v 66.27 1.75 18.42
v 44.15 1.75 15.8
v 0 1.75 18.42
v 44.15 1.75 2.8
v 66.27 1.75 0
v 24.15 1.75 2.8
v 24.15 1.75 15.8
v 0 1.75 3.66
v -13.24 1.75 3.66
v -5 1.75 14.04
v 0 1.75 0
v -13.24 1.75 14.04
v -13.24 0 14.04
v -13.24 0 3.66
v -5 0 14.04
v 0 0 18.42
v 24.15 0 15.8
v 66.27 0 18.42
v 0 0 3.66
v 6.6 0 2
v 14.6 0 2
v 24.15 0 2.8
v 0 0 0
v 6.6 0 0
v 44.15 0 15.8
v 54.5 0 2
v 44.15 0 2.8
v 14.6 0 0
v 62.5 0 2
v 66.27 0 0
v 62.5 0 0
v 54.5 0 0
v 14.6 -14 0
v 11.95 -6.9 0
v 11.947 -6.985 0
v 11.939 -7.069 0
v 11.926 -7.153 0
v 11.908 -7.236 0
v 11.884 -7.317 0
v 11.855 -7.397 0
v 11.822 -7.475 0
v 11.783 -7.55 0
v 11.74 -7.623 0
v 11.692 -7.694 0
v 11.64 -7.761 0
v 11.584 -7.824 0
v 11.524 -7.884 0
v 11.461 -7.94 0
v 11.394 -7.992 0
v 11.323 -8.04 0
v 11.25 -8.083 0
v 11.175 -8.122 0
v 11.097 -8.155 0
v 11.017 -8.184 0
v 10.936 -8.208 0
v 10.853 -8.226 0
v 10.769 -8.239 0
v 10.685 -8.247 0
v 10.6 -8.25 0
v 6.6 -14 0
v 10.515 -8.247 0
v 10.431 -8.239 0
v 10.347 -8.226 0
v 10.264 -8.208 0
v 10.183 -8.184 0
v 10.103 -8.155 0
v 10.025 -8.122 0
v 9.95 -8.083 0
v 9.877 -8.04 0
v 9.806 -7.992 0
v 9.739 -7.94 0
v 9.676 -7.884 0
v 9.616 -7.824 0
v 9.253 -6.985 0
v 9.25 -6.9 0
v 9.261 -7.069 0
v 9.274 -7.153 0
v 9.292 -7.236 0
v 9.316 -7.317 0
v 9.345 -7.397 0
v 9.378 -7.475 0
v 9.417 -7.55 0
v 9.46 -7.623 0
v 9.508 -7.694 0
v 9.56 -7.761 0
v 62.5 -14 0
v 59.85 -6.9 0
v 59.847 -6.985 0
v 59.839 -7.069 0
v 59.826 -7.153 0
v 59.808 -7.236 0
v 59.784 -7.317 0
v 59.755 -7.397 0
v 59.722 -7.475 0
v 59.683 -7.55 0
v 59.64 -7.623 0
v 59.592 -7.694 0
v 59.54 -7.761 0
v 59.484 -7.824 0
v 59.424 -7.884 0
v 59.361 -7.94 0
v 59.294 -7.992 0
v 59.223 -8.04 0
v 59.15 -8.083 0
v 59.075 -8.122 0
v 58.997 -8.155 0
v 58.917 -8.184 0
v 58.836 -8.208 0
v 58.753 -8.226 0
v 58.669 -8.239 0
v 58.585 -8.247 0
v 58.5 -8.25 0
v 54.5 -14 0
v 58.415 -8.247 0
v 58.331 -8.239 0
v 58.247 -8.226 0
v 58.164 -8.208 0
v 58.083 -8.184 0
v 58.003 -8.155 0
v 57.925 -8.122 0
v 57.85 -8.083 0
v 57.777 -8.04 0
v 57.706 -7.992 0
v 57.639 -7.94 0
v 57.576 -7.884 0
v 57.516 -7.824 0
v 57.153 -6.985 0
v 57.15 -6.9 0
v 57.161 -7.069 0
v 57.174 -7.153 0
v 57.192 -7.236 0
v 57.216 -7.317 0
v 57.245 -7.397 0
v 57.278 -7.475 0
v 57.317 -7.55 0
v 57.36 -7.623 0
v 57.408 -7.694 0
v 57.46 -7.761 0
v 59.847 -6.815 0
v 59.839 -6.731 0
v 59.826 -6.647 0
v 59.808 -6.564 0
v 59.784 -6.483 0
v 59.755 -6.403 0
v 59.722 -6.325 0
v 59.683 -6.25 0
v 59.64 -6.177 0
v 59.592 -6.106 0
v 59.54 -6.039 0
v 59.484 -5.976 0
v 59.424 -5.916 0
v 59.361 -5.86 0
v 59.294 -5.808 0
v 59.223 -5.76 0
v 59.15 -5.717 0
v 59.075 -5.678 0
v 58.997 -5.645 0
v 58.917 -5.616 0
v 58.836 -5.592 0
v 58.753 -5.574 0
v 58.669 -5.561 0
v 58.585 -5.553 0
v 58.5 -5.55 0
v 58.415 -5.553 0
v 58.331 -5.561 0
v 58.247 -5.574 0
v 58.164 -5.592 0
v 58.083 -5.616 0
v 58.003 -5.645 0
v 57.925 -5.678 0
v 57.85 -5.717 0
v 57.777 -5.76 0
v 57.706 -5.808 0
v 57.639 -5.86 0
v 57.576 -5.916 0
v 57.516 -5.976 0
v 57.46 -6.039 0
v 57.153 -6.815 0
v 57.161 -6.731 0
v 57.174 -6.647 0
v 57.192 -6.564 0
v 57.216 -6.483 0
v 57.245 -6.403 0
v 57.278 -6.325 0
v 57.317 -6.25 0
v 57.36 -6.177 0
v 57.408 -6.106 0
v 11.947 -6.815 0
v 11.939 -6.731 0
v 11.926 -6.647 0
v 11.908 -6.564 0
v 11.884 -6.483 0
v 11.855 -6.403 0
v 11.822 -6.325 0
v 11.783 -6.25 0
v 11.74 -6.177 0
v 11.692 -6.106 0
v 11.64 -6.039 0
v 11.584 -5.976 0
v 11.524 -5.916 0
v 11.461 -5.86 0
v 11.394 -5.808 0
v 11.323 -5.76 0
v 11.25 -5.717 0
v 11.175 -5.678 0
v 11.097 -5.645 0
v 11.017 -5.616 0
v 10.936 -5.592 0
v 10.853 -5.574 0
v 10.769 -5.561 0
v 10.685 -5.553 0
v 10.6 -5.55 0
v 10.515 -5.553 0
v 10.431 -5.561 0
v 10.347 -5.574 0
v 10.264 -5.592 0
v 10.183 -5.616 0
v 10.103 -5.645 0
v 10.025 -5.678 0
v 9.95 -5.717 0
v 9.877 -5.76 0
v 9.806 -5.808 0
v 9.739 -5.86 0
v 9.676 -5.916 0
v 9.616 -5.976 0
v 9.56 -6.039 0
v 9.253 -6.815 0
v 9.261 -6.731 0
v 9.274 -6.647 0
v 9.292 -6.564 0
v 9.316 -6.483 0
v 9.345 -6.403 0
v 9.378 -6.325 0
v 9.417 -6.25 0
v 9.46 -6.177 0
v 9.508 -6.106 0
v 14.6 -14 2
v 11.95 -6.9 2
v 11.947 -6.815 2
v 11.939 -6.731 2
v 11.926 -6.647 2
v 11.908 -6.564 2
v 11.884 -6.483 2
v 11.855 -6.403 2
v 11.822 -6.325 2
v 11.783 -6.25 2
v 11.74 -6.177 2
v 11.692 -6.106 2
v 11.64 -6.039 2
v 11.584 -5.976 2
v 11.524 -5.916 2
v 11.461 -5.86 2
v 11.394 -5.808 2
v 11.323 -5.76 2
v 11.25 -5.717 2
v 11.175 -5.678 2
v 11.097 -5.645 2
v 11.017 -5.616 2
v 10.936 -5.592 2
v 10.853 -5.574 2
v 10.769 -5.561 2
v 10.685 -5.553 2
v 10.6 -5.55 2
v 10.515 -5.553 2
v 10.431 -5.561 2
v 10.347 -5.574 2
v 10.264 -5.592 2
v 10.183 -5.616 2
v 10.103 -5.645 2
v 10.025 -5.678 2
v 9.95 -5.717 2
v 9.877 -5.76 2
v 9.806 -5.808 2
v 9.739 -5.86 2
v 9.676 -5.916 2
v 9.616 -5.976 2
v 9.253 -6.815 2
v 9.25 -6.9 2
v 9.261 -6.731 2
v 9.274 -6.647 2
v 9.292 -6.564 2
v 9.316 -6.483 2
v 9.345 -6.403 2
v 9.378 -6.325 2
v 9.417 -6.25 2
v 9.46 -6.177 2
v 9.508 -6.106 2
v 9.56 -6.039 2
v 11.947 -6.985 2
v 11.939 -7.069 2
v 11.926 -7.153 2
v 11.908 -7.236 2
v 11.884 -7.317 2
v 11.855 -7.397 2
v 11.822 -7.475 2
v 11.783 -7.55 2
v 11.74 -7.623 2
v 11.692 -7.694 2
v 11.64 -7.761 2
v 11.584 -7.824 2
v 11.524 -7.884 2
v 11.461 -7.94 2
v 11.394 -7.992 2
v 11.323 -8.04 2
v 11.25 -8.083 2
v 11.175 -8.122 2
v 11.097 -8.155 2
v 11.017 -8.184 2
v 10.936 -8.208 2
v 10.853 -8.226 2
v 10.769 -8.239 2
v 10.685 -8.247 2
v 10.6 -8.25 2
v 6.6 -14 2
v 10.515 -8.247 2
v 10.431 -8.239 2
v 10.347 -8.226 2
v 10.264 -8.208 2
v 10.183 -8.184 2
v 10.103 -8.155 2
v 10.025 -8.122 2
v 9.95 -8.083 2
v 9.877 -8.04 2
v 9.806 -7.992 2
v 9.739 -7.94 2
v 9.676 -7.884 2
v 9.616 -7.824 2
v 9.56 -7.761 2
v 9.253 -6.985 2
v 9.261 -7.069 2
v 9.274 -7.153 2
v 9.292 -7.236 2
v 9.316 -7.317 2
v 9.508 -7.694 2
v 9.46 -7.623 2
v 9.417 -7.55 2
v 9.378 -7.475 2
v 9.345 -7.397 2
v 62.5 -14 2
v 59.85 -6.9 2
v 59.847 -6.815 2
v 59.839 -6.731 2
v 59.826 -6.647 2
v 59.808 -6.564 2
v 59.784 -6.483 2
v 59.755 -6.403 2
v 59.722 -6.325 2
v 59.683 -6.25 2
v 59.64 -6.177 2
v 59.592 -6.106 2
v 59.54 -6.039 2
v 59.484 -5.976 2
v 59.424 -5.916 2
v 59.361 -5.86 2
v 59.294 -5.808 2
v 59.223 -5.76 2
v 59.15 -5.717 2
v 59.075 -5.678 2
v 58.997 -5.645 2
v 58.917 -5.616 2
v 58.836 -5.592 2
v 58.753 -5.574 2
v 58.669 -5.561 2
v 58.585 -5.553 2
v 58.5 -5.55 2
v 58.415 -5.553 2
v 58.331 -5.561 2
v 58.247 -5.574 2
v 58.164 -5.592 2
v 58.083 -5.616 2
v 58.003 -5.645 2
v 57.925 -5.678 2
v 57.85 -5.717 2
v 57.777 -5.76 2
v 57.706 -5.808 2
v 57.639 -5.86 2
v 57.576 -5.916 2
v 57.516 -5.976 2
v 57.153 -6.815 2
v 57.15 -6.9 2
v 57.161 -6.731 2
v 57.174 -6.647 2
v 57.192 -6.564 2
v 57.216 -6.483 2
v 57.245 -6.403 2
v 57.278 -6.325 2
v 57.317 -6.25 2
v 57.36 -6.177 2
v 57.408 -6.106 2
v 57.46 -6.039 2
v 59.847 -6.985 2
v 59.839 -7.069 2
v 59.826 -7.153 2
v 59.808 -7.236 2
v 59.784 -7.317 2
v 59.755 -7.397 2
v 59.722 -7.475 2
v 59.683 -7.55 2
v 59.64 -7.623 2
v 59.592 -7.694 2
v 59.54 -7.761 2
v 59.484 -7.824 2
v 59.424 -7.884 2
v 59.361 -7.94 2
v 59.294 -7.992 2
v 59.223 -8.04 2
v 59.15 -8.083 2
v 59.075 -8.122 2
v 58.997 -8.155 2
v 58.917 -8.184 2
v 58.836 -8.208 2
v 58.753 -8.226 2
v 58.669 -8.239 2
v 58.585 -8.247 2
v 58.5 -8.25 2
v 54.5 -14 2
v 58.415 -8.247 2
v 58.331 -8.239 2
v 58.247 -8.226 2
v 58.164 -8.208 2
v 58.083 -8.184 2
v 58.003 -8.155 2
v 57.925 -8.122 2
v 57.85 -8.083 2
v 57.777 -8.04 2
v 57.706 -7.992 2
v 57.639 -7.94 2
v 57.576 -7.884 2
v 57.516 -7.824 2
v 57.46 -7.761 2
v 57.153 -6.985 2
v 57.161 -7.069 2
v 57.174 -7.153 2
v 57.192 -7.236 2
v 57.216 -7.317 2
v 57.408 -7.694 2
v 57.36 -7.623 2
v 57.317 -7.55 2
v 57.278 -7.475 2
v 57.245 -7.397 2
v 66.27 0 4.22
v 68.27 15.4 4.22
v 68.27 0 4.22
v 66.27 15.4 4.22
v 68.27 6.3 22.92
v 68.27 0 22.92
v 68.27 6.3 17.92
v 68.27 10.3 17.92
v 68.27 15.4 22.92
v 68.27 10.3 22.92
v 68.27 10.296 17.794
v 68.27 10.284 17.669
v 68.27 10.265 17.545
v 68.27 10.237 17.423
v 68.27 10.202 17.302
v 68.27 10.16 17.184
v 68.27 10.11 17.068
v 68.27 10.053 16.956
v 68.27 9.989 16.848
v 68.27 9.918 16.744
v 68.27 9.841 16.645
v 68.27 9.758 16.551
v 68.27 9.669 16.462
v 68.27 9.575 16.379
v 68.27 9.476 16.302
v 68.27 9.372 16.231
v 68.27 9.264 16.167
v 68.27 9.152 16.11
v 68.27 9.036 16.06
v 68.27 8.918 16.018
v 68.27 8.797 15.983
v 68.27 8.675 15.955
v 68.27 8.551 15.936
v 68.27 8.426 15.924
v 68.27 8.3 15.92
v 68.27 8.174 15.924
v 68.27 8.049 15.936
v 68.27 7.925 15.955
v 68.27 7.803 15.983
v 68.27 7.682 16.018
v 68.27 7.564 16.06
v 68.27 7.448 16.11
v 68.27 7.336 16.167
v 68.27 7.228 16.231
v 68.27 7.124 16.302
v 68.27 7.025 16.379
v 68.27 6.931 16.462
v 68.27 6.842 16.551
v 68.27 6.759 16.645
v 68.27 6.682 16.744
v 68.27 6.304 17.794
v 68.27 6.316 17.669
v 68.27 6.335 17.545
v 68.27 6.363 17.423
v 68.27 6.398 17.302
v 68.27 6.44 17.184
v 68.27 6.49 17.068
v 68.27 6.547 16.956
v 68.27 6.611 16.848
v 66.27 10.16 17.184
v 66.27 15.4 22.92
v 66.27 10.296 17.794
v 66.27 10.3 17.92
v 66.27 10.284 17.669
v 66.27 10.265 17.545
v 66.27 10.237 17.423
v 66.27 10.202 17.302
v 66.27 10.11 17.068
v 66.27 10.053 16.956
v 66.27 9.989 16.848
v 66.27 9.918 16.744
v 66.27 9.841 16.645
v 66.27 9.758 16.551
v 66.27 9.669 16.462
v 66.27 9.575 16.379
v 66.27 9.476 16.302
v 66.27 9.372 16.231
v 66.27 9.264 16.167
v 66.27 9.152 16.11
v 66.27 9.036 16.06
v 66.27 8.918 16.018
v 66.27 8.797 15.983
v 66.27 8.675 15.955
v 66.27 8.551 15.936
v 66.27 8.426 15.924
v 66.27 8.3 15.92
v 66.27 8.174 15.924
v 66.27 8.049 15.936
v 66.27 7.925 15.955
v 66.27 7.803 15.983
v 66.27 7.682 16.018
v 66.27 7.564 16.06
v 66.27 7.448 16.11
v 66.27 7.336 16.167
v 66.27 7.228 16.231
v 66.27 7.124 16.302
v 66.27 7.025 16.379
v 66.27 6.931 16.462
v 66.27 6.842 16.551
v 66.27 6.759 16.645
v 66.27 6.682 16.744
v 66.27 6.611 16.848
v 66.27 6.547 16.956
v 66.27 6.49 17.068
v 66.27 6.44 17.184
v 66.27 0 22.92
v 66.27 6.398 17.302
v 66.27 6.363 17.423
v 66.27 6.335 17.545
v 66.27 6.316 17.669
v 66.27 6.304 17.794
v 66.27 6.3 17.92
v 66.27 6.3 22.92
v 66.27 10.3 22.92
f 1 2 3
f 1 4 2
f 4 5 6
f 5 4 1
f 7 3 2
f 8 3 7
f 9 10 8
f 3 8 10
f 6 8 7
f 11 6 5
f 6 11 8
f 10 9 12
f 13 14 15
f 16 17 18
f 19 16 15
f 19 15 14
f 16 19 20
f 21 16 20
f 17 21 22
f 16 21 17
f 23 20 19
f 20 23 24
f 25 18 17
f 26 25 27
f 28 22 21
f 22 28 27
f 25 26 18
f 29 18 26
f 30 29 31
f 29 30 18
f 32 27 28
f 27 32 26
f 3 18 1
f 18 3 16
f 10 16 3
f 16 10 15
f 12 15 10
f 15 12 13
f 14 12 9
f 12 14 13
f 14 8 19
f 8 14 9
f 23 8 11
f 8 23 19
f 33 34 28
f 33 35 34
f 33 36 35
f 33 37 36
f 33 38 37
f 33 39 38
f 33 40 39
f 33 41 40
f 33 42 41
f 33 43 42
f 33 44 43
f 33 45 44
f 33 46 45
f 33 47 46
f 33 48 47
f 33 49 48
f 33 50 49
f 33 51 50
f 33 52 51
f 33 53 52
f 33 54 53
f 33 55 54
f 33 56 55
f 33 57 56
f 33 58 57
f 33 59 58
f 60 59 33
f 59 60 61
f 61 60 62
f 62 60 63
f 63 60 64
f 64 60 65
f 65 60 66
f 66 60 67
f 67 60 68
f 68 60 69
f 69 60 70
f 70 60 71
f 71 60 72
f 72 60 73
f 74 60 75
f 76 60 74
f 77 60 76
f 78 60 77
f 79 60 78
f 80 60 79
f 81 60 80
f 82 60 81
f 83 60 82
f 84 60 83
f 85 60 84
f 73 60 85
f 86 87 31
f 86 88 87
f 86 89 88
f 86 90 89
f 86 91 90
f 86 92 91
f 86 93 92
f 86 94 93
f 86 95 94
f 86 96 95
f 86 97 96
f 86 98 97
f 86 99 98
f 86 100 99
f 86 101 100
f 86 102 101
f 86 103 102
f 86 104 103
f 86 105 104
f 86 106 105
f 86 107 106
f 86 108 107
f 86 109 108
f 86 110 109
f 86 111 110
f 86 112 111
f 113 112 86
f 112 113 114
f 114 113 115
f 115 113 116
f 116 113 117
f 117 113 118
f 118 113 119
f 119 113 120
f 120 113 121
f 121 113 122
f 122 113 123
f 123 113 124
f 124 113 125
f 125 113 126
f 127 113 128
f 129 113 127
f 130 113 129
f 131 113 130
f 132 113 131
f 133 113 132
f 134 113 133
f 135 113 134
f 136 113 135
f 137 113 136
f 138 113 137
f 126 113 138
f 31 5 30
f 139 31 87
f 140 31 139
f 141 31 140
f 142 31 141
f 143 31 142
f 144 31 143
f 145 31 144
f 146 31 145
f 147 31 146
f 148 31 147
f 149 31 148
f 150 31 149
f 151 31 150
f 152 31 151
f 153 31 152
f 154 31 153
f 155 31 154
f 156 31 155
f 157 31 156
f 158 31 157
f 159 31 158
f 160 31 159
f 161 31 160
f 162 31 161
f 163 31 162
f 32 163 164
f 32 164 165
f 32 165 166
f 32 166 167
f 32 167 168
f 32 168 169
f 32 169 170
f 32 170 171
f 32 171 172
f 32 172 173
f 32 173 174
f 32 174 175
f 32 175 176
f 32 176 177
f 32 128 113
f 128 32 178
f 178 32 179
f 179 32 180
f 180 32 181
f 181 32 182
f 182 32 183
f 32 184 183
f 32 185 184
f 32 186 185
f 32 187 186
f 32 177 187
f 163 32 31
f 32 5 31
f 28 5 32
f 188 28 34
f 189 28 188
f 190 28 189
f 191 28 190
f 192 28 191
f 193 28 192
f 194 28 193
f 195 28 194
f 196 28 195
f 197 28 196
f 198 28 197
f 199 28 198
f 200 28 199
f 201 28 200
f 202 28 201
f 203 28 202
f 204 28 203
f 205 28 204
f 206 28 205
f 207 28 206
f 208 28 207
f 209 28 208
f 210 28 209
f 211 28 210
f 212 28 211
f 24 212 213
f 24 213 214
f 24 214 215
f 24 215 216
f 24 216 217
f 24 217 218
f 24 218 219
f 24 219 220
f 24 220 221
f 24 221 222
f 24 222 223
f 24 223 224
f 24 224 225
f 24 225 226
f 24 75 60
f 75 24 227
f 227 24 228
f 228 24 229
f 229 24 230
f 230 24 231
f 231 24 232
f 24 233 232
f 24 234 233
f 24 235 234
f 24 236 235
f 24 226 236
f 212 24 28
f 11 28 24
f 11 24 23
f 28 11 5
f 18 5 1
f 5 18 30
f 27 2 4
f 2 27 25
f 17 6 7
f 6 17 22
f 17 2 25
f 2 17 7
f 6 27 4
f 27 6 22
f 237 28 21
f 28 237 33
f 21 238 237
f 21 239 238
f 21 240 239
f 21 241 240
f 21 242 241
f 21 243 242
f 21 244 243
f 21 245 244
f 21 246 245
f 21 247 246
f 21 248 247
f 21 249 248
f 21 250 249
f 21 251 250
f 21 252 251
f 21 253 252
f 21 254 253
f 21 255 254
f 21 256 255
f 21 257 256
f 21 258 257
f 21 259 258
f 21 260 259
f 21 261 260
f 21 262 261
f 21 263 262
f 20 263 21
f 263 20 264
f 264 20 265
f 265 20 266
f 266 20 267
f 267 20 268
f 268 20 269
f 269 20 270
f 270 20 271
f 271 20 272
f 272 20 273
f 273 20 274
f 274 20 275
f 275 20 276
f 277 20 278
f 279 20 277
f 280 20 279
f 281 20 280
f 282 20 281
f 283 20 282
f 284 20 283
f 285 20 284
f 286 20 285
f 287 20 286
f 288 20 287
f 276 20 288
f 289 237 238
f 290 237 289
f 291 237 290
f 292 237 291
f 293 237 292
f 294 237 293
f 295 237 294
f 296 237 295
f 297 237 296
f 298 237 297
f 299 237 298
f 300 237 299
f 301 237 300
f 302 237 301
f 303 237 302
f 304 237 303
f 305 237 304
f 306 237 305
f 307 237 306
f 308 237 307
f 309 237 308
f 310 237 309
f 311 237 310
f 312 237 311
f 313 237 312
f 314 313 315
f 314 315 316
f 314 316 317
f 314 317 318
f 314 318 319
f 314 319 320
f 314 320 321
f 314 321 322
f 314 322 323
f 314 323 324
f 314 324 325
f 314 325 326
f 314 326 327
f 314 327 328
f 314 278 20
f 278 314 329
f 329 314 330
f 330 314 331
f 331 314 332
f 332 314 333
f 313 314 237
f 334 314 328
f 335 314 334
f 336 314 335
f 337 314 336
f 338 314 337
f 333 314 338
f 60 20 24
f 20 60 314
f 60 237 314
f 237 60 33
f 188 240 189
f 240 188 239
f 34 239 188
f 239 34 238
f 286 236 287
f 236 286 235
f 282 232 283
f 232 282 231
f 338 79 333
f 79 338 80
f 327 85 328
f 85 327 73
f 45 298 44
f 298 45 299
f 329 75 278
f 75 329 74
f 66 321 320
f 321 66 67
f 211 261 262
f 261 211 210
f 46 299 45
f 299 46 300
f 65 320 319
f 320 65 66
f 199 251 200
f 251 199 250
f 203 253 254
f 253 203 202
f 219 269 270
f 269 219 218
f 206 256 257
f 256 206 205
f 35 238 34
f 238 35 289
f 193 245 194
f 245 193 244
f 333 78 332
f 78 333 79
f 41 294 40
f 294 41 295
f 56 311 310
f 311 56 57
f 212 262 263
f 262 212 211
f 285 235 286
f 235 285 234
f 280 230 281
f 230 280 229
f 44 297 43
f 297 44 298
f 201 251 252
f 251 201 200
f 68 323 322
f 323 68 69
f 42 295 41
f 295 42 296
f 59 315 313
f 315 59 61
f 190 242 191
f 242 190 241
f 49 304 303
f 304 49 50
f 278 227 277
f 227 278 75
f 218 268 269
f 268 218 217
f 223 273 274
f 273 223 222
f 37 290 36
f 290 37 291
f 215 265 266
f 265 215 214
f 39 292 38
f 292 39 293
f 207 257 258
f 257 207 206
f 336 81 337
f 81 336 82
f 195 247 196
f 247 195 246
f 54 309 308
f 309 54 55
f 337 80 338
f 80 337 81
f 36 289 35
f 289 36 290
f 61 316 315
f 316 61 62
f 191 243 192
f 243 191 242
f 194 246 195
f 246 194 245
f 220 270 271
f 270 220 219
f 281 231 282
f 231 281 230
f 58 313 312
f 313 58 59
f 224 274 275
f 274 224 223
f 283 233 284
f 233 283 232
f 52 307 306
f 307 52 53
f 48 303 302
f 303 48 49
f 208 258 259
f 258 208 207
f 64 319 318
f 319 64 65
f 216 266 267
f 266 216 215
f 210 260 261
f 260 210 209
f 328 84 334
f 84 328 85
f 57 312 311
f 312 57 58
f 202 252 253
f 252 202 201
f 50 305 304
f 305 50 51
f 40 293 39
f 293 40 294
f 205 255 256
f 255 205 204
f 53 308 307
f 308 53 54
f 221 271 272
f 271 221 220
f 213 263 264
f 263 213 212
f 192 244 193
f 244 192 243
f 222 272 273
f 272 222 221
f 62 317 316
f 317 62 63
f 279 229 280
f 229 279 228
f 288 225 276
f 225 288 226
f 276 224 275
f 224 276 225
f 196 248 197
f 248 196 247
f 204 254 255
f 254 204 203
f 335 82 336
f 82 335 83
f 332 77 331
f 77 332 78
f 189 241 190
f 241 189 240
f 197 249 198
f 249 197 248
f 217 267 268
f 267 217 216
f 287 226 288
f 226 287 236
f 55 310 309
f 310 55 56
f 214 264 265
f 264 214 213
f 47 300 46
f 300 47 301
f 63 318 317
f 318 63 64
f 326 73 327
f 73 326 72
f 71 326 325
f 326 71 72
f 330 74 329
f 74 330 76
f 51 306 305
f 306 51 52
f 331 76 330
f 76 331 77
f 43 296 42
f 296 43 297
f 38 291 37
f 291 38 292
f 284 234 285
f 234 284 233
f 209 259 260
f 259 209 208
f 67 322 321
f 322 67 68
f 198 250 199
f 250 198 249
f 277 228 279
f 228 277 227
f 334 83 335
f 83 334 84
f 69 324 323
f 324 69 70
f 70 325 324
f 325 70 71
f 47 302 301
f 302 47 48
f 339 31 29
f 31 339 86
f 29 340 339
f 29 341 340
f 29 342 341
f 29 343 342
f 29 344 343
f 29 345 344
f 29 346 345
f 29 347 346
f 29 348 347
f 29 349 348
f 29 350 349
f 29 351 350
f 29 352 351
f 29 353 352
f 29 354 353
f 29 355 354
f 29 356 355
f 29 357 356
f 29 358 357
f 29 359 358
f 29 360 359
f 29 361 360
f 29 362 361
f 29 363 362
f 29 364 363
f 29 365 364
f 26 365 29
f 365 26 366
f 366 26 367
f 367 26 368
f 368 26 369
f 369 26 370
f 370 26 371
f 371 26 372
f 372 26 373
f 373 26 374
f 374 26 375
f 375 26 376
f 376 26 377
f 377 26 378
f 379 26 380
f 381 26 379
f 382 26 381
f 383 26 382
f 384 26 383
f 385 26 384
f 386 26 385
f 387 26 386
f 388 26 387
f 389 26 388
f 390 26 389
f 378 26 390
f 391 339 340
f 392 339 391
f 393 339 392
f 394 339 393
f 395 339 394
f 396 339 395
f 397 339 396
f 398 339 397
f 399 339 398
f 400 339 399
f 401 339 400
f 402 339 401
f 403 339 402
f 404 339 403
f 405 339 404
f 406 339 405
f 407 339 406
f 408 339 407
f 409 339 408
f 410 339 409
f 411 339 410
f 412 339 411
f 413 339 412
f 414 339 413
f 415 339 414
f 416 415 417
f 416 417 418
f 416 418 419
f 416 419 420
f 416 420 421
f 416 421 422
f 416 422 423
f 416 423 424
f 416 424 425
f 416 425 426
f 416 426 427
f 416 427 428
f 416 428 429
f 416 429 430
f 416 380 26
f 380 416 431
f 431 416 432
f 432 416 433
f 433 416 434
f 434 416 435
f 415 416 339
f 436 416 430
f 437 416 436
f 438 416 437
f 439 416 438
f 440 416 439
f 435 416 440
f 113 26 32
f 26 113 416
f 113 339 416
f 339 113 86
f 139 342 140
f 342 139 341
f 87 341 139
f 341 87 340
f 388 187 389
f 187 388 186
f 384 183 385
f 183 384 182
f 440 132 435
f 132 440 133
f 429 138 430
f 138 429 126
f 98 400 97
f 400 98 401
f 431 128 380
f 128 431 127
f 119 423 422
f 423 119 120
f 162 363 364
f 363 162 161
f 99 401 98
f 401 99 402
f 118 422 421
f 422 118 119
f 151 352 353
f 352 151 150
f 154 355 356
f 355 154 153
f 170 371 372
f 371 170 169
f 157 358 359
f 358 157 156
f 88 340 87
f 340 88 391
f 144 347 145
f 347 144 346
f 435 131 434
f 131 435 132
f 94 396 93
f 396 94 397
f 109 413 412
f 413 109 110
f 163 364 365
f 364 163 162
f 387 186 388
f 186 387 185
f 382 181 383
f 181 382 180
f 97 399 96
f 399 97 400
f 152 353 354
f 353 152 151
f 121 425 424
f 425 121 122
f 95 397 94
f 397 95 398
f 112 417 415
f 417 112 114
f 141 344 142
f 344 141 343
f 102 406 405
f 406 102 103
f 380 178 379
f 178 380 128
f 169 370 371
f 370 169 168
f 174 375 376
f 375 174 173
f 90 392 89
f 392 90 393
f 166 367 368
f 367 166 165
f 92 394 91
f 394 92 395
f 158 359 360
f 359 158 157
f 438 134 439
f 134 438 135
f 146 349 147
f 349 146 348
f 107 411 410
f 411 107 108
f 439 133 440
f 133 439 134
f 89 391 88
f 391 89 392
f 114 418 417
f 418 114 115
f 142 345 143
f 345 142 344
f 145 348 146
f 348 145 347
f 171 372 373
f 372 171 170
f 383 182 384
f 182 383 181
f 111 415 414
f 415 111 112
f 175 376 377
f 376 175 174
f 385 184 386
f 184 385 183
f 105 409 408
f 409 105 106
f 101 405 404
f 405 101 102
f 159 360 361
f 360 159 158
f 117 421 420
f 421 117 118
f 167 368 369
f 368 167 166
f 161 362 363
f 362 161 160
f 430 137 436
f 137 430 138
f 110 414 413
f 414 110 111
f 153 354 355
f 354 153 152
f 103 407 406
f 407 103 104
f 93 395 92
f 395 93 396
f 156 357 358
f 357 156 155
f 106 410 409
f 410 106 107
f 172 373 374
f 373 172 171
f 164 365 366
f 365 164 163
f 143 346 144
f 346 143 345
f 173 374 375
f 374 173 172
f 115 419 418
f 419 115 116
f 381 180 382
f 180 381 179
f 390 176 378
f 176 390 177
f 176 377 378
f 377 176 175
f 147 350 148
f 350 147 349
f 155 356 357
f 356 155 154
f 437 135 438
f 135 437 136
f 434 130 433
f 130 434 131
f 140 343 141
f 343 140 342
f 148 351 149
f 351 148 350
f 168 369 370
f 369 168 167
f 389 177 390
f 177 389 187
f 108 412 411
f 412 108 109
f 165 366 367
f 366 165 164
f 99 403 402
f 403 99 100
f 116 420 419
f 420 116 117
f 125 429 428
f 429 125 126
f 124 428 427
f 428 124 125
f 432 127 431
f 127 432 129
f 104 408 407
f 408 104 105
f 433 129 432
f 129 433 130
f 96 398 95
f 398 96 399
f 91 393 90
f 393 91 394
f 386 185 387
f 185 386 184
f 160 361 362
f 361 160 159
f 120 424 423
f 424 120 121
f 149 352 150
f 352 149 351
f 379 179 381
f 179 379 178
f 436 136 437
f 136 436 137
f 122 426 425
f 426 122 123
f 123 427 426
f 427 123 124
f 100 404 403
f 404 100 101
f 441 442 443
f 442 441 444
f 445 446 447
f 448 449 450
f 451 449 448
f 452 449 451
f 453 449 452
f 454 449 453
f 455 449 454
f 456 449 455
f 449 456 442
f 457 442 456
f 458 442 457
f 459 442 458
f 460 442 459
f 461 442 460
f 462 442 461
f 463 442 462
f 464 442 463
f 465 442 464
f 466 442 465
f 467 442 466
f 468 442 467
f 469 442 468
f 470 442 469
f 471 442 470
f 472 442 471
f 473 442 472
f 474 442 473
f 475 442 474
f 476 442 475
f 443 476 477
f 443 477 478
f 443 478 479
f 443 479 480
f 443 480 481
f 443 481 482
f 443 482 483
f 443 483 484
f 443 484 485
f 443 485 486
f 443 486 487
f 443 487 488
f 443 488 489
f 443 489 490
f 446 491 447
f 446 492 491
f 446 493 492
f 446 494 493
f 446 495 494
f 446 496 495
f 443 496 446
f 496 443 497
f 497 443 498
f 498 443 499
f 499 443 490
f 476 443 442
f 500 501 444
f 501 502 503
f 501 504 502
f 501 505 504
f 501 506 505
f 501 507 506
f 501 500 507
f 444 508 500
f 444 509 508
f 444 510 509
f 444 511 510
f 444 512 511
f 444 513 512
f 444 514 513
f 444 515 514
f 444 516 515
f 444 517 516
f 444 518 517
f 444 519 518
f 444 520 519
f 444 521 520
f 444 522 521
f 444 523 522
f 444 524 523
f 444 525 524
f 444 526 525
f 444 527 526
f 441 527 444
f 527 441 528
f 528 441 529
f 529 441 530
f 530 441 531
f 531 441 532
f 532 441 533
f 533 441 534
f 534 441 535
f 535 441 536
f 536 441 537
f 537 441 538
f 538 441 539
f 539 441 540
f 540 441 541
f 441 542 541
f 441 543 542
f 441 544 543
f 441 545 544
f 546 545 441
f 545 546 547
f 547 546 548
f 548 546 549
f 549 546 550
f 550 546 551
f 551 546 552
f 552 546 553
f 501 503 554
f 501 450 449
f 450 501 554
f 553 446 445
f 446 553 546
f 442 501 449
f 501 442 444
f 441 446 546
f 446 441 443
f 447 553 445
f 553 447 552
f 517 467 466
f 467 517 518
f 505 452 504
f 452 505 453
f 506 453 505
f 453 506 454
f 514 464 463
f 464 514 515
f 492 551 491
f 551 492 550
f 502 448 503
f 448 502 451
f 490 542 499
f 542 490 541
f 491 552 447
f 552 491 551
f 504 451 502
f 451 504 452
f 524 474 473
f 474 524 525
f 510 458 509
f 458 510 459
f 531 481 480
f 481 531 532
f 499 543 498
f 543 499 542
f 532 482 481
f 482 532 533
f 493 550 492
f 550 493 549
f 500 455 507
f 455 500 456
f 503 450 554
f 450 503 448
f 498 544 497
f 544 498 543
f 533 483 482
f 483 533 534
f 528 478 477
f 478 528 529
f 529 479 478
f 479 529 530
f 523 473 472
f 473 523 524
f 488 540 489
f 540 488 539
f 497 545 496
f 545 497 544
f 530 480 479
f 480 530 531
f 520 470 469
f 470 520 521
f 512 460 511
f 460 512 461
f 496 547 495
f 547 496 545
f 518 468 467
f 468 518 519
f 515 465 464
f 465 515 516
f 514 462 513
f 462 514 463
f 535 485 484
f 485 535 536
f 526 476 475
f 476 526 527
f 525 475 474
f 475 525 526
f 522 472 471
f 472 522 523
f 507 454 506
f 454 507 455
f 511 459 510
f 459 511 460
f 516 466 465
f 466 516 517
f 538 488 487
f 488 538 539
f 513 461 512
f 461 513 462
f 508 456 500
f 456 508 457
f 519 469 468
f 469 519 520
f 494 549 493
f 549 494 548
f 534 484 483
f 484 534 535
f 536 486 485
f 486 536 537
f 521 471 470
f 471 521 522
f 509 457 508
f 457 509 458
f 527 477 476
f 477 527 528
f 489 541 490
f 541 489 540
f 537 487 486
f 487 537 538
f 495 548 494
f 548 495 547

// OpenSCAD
// position of first screw, in respect to card base
A =  10.6;

// distance between the 2 screw centers
B = 47.9;

// distance of the screw from pci bracket
C = 6.9;

// M3 hole diameter
M3= 2.7;

/* [Hidden] */
h_pci_cutout = 66.27;

module plate() {
thick = 1.75;
plug_bottom  =-13.24;
board_bottom =  0.0;
w_pci_cutout = 18.42;
w_connector  = 10.38;
w_margin     =  3.16 + 0.5;
points = [  [plug_bottom, w_margin], 
            [board_bottom, w_margin],
            [board_bottom, 0], 
            [h_pci_cutout, 0],
            [h_pci_cutout, w_pci_cutout],
            [board_bottom, w_pci_cutout],
            [-5, w_margin + w_connector], 
            [ plug_bottom, w_margin + w_connector] ];

difference() {
    translate([ 0, 0, -thick])
    linear_extrude(height = thick) {
        polygon( points);
    }
    // first and third row of holes
    /*
    for (b = [4.5:10:14.5]) {
        for (a = [0,7,14,42,49,56]) {
            translate([6 + a, b, -30])
            cylinder(60, d=5, $fn=6);
        }
    }
    for (a =[0,7,42,49]) {
        translate([9.5 + a,9.5,-30])
        cylinder(60, d=5, $fn=6);
    }
    */

  // RJ45 cutout
  translate([A+10.5+6.1/2, 2.8, -4])
  cube([19+1, 12.5+0.5, 8]);
}

}

// fix plate


module fix() {
    half   =  4;
    length = 14;
    thick  =  2;
    difference() {
        translate([ -half, -length, 0]) cube( size=[ 2*half, length, thick] );
        translate([ 0, -C, 0]) 
        cylinder (h = 10, r=M3/2, center = true, $fn=100);
    }
}




module pci() {
    M4 = 4.0;

    width  = 12.40 + 3;
    length = 18.70;
    thick  =  2;
    shift  = 4.22;
    translate([ -( length + shift), 0, 0])
    difference() {
        cube( size=[ length, width, thick] );

        translate([ 0, width/2 + 0.6, 0])
        hull() {
            cylinder (h = 10, r=M4/2, center = true, $fn=100);
            translate([ 5, 0, 0])
            cylinder (h = 10, r=M4/2, center = true, $fn=100);
        }
    }
}



// make plate front side
color("SkyBlue")
rotate( [ 90, 0, 0]) plate();

// fix plate
color("red") {
translate([ A, 0, 0]) fix();
translate([ A + B, 0, 0]) fix();
}

// pci holder
color("green")
translate([ h_pci_cutout, 0, 0])
rotate( [ 0, 90, 0]) pci();
